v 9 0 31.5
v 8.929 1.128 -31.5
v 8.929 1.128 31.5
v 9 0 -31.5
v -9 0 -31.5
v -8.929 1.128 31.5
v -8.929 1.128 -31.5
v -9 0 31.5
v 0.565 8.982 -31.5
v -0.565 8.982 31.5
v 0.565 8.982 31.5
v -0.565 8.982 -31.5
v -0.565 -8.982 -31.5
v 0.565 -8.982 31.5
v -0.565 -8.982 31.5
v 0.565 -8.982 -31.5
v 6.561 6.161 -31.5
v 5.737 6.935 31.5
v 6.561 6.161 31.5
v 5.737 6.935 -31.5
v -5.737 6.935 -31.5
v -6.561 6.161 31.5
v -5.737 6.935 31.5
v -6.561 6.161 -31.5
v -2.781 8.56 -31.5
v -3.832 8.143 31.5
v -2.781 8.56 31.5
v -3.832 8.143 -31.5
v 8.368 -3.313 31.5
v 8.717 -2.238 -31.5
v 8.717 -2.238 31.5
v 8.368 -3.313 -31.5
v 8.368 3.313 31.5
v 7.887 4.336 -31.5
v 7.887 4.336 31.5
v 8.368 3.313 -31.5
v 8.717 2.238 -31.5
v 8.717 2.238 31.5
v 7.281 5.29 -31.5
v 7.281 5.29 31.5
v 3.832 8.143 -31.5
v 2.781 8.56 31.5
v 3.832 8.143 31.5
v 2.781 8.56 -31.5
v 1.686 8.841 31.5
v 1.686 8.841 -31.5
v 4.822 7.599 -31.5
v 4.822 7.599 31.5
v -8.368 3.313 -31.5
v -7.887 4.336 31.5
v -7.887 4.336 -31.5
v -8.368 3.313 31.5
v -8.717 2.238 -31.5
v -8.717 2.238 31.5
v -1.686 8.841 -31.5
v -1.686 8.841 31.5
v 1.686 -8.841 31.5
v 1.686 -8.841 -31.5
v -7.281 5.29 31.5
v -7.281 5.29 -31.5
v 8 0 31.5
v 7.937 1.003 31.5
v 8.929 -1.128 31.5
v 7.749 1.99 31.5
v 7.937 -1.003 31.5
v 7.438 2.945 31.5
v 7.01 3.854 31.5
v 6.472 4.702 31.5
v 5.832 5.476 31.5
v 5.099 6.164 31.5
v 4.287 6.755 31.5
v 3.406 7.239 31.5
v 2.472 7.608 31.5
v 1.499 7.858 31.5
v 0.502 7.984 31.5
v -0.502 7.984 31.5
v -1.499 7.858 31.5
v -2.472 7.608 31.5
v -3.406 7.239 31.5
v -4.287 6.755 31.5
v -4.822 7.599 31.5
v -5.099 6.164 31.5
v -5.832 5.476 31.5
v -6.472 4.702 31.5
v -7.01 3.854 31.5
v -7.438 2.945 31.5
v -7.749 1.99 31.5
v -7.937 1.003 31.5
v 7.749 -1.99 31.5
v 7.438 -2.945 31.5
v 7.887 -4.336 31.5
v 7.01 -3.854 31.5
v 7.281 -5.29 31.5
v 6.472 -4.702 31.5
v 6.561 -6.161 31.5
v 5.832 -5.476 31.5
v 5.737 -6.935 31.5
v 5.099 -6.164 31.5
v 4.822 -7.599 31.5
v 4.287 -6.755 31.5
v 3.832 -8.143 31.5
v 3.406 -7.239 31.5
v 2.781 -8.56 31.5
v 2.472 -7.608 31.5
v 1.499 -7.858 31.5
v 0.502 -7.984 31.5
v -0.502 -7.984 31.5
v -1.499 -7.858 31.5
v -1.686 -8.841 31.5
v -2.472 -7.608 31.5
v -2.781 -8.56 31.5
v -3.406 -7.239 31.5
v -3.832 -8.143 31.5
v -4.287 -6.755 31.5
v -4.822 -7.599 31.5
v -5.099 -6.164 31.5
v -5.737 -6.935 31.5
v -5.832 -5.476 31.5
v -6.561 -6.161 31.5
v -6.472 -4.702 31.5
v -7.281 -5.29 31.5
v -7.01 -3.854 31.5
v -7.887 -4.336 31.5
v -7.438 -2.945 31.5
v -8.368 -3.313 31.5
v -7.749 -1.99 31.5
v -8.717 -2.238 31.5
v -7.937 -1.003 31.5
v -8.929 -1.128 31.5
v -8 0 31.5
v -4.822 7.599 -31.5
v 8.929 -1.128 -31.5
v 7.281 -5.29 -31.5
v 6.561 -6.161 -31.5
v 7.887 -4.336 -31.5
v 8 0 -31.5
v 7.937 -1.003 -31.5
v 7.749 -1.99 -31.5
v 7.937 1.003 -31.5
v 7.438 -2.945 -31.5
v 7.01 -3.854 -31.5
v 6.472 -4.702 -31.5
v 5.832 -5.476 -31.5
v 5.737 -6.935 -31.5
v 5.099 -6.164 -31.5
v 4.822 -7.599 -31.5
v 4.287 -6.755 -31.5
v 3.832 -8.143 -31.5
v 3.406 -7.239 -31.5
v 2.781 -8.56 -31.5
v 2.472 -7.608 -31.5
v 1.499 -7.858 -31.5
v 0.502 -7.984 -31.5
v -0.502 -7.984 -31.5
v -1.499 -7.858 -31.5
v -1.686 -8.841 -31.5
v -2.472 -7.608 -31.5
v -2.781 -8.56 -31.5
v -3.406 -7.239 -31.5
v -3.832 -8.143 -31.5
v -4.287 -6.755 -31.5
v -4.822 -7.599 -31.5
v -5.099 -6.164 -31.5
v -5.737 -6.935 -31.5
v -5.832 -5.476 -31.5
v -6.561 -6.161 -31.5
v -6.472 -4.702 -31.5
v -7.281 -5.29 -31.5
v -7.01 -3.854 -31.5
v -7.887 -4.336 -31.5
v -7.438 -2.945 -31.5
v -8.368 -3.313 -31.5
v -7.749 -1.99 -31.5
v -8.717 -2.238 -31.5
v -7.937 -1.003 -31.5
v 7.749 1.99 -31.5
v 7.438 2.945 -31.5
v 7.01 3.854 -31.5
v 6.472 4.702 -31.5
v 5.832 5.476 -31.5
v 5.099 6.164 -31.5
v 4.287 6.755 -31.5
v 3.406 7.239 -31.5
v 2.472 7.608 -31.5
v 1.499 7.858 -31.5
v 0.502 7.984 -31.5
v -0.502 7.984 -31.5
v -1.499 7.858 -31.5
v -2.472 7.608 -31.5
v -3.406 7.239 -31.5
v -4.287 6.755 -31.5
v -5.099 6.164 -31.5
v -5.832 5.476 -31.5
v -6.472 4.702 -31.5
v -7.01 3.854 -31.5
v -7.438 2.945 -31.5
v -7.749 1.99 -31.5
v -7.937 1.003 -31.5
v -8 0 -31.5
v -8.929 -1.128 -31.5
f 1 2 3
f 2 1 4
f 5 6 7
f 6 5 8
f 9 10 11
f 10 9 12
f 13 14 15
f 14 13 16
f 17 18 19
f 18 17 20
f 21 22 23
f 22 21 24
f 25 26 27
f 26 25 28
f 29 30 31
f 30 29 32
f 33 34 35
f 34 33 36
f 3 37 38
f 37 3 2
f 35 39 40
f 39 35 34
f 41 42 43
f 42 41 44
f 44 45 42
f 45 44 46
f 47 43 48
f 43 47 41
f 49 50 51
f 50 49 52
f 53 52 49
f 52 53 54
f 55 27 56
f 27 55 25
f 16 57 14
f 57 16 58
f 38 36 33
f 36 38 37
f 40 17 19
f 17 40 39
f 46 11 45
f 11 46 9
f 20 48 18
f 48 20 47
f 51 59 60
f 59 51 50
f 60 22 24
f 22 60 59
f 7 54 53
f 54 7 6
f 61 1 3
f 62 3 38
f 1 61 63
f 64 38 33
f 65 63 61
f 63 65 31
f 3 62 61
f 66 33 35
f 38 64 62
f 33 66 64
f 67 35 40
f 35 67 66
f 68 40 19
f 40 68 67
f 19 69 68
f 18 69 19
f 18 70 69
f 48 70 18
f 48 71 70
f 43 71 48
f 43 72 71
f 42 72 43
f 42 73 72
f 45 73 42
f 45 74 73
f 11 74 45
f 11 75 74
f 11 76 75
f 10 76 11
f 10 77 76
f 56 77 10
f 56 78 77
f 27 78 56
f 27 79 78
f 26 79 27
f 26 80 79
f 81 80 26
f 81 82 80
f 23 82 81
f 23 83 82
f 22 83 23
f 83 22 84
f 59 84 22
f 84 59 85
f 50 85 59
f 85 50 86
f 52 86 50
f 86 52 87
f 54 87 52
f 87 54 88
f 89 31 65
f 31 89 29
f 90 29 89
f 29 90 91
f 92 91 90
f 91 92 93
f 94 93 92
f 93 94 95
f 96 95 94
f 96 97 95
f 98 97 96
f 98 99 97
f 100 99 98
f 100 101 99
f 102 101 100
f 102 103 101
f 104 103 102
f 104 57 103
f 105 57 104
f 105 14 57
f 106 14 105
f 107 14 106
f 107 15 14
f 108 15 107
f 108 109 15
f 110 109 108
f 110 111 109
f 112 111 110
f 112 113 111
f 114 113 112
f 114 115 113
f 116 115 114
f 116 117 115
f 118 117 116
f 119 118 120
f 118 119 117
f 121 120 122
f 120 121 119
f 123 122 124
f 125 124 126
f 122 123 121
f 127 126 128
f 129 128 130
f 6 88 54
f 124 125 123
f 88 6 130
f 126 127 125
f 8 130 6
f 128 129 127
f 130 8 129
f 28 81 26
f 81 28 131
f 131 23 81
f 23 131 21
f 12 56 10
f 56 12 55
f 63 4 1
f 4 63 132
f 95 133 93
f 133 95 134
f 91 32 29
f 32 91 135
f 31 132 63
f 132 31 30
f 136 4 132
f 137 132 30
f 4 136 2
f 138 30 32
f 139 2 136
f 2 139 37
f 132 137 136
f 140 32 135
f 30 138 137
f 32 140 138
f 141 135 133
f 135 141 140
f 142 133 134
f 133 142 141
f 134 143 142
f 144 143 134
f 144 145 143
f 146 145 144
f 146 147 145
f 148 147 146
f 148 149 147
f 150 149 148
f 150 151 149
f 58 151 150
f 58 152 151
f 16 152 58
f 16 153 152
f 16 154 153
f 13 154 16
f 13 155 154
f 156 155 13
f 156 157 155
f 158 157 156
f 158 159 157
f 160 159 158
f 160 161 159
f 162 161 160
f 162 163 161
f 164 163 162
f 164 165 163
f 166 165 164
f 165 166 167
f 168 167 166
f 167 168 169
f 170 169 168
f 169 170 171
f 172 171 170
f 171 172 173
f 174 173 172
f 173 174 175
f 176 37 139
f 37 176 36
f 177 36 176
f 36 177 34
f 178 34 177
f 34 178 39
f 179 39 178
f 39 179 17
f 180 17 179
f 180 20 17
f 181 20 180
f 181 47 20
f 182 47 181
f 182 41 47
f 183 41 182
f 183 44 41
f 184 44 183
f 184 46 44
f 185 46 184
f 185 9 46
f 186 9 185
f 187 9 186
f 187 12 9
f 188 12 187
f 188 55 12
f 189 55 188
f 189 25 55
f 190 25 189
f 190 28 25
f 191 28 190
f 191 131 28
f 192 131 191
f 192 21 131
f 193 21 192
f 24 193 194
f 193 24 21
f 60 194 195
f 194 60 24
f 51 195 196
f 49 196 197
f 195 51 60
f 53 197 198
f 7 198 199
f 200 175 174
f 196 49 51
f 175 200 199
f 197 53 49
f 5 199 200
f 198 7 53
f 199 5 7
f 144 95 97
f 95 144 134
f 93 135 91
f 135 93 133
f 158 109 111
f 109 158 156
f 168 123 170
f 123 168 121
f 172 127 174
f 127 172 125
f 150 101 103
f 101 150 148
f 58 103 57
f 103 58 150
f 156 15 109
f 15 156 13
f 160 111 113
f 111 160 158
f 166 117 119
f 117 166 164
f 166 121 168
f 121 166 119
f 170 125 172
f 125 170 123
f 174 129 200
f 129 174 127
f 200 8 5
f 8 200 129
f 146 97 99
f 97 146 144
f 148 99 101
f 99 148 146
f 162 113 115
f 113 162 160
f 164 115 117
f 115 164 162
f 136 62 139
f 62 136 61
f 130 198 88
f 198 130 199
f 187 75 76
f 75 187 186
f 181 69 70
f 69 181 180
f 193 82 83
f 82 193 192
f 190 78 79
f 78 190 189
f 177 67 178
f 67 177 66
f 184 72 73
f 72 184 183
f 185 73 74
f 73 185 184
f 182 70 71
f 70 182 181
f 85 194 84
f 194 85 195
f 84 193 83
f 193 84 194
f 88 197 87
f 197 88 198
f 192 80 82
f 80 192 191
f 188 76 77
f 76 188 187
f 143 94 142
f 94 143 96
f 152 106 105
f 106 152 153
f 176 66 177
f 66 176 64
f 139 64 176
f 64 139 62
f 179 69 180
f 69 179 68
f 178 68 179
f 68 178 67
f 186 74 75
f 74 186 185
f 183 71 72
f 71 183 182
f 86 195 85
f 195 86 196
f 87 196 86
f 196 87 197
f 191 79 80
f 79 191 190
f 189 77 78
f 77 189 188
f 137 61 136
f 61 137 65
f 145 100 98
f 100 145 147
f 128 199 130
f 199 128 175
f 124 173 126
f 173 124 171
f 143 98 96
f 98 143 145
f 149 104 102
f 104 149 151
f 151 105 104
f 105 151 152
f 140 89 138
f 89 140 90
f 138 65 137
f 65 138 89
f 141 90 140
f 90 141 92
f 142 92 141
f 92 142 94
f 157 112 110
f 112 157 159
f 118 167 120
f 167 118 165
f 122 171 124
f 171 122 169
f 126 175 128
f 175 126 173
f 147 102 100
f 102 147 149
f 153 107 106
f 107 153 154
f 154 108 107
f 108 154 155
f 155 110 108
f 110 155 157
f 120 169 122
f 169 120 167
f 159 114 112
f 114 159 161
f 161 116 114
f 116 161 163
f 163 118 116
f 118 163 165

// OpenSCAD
$fn = 50;


difference() {
	union() {
		translate(v = [0, 0, -31.5000000000]) {
			cylinder(h = 63, r = 9.0000000000);
		}
	}
	union() {
		translate(v = [0, 0, -100.0000000000]) {
			cylinder(h = 200, r = 8);
		}
	}
}
